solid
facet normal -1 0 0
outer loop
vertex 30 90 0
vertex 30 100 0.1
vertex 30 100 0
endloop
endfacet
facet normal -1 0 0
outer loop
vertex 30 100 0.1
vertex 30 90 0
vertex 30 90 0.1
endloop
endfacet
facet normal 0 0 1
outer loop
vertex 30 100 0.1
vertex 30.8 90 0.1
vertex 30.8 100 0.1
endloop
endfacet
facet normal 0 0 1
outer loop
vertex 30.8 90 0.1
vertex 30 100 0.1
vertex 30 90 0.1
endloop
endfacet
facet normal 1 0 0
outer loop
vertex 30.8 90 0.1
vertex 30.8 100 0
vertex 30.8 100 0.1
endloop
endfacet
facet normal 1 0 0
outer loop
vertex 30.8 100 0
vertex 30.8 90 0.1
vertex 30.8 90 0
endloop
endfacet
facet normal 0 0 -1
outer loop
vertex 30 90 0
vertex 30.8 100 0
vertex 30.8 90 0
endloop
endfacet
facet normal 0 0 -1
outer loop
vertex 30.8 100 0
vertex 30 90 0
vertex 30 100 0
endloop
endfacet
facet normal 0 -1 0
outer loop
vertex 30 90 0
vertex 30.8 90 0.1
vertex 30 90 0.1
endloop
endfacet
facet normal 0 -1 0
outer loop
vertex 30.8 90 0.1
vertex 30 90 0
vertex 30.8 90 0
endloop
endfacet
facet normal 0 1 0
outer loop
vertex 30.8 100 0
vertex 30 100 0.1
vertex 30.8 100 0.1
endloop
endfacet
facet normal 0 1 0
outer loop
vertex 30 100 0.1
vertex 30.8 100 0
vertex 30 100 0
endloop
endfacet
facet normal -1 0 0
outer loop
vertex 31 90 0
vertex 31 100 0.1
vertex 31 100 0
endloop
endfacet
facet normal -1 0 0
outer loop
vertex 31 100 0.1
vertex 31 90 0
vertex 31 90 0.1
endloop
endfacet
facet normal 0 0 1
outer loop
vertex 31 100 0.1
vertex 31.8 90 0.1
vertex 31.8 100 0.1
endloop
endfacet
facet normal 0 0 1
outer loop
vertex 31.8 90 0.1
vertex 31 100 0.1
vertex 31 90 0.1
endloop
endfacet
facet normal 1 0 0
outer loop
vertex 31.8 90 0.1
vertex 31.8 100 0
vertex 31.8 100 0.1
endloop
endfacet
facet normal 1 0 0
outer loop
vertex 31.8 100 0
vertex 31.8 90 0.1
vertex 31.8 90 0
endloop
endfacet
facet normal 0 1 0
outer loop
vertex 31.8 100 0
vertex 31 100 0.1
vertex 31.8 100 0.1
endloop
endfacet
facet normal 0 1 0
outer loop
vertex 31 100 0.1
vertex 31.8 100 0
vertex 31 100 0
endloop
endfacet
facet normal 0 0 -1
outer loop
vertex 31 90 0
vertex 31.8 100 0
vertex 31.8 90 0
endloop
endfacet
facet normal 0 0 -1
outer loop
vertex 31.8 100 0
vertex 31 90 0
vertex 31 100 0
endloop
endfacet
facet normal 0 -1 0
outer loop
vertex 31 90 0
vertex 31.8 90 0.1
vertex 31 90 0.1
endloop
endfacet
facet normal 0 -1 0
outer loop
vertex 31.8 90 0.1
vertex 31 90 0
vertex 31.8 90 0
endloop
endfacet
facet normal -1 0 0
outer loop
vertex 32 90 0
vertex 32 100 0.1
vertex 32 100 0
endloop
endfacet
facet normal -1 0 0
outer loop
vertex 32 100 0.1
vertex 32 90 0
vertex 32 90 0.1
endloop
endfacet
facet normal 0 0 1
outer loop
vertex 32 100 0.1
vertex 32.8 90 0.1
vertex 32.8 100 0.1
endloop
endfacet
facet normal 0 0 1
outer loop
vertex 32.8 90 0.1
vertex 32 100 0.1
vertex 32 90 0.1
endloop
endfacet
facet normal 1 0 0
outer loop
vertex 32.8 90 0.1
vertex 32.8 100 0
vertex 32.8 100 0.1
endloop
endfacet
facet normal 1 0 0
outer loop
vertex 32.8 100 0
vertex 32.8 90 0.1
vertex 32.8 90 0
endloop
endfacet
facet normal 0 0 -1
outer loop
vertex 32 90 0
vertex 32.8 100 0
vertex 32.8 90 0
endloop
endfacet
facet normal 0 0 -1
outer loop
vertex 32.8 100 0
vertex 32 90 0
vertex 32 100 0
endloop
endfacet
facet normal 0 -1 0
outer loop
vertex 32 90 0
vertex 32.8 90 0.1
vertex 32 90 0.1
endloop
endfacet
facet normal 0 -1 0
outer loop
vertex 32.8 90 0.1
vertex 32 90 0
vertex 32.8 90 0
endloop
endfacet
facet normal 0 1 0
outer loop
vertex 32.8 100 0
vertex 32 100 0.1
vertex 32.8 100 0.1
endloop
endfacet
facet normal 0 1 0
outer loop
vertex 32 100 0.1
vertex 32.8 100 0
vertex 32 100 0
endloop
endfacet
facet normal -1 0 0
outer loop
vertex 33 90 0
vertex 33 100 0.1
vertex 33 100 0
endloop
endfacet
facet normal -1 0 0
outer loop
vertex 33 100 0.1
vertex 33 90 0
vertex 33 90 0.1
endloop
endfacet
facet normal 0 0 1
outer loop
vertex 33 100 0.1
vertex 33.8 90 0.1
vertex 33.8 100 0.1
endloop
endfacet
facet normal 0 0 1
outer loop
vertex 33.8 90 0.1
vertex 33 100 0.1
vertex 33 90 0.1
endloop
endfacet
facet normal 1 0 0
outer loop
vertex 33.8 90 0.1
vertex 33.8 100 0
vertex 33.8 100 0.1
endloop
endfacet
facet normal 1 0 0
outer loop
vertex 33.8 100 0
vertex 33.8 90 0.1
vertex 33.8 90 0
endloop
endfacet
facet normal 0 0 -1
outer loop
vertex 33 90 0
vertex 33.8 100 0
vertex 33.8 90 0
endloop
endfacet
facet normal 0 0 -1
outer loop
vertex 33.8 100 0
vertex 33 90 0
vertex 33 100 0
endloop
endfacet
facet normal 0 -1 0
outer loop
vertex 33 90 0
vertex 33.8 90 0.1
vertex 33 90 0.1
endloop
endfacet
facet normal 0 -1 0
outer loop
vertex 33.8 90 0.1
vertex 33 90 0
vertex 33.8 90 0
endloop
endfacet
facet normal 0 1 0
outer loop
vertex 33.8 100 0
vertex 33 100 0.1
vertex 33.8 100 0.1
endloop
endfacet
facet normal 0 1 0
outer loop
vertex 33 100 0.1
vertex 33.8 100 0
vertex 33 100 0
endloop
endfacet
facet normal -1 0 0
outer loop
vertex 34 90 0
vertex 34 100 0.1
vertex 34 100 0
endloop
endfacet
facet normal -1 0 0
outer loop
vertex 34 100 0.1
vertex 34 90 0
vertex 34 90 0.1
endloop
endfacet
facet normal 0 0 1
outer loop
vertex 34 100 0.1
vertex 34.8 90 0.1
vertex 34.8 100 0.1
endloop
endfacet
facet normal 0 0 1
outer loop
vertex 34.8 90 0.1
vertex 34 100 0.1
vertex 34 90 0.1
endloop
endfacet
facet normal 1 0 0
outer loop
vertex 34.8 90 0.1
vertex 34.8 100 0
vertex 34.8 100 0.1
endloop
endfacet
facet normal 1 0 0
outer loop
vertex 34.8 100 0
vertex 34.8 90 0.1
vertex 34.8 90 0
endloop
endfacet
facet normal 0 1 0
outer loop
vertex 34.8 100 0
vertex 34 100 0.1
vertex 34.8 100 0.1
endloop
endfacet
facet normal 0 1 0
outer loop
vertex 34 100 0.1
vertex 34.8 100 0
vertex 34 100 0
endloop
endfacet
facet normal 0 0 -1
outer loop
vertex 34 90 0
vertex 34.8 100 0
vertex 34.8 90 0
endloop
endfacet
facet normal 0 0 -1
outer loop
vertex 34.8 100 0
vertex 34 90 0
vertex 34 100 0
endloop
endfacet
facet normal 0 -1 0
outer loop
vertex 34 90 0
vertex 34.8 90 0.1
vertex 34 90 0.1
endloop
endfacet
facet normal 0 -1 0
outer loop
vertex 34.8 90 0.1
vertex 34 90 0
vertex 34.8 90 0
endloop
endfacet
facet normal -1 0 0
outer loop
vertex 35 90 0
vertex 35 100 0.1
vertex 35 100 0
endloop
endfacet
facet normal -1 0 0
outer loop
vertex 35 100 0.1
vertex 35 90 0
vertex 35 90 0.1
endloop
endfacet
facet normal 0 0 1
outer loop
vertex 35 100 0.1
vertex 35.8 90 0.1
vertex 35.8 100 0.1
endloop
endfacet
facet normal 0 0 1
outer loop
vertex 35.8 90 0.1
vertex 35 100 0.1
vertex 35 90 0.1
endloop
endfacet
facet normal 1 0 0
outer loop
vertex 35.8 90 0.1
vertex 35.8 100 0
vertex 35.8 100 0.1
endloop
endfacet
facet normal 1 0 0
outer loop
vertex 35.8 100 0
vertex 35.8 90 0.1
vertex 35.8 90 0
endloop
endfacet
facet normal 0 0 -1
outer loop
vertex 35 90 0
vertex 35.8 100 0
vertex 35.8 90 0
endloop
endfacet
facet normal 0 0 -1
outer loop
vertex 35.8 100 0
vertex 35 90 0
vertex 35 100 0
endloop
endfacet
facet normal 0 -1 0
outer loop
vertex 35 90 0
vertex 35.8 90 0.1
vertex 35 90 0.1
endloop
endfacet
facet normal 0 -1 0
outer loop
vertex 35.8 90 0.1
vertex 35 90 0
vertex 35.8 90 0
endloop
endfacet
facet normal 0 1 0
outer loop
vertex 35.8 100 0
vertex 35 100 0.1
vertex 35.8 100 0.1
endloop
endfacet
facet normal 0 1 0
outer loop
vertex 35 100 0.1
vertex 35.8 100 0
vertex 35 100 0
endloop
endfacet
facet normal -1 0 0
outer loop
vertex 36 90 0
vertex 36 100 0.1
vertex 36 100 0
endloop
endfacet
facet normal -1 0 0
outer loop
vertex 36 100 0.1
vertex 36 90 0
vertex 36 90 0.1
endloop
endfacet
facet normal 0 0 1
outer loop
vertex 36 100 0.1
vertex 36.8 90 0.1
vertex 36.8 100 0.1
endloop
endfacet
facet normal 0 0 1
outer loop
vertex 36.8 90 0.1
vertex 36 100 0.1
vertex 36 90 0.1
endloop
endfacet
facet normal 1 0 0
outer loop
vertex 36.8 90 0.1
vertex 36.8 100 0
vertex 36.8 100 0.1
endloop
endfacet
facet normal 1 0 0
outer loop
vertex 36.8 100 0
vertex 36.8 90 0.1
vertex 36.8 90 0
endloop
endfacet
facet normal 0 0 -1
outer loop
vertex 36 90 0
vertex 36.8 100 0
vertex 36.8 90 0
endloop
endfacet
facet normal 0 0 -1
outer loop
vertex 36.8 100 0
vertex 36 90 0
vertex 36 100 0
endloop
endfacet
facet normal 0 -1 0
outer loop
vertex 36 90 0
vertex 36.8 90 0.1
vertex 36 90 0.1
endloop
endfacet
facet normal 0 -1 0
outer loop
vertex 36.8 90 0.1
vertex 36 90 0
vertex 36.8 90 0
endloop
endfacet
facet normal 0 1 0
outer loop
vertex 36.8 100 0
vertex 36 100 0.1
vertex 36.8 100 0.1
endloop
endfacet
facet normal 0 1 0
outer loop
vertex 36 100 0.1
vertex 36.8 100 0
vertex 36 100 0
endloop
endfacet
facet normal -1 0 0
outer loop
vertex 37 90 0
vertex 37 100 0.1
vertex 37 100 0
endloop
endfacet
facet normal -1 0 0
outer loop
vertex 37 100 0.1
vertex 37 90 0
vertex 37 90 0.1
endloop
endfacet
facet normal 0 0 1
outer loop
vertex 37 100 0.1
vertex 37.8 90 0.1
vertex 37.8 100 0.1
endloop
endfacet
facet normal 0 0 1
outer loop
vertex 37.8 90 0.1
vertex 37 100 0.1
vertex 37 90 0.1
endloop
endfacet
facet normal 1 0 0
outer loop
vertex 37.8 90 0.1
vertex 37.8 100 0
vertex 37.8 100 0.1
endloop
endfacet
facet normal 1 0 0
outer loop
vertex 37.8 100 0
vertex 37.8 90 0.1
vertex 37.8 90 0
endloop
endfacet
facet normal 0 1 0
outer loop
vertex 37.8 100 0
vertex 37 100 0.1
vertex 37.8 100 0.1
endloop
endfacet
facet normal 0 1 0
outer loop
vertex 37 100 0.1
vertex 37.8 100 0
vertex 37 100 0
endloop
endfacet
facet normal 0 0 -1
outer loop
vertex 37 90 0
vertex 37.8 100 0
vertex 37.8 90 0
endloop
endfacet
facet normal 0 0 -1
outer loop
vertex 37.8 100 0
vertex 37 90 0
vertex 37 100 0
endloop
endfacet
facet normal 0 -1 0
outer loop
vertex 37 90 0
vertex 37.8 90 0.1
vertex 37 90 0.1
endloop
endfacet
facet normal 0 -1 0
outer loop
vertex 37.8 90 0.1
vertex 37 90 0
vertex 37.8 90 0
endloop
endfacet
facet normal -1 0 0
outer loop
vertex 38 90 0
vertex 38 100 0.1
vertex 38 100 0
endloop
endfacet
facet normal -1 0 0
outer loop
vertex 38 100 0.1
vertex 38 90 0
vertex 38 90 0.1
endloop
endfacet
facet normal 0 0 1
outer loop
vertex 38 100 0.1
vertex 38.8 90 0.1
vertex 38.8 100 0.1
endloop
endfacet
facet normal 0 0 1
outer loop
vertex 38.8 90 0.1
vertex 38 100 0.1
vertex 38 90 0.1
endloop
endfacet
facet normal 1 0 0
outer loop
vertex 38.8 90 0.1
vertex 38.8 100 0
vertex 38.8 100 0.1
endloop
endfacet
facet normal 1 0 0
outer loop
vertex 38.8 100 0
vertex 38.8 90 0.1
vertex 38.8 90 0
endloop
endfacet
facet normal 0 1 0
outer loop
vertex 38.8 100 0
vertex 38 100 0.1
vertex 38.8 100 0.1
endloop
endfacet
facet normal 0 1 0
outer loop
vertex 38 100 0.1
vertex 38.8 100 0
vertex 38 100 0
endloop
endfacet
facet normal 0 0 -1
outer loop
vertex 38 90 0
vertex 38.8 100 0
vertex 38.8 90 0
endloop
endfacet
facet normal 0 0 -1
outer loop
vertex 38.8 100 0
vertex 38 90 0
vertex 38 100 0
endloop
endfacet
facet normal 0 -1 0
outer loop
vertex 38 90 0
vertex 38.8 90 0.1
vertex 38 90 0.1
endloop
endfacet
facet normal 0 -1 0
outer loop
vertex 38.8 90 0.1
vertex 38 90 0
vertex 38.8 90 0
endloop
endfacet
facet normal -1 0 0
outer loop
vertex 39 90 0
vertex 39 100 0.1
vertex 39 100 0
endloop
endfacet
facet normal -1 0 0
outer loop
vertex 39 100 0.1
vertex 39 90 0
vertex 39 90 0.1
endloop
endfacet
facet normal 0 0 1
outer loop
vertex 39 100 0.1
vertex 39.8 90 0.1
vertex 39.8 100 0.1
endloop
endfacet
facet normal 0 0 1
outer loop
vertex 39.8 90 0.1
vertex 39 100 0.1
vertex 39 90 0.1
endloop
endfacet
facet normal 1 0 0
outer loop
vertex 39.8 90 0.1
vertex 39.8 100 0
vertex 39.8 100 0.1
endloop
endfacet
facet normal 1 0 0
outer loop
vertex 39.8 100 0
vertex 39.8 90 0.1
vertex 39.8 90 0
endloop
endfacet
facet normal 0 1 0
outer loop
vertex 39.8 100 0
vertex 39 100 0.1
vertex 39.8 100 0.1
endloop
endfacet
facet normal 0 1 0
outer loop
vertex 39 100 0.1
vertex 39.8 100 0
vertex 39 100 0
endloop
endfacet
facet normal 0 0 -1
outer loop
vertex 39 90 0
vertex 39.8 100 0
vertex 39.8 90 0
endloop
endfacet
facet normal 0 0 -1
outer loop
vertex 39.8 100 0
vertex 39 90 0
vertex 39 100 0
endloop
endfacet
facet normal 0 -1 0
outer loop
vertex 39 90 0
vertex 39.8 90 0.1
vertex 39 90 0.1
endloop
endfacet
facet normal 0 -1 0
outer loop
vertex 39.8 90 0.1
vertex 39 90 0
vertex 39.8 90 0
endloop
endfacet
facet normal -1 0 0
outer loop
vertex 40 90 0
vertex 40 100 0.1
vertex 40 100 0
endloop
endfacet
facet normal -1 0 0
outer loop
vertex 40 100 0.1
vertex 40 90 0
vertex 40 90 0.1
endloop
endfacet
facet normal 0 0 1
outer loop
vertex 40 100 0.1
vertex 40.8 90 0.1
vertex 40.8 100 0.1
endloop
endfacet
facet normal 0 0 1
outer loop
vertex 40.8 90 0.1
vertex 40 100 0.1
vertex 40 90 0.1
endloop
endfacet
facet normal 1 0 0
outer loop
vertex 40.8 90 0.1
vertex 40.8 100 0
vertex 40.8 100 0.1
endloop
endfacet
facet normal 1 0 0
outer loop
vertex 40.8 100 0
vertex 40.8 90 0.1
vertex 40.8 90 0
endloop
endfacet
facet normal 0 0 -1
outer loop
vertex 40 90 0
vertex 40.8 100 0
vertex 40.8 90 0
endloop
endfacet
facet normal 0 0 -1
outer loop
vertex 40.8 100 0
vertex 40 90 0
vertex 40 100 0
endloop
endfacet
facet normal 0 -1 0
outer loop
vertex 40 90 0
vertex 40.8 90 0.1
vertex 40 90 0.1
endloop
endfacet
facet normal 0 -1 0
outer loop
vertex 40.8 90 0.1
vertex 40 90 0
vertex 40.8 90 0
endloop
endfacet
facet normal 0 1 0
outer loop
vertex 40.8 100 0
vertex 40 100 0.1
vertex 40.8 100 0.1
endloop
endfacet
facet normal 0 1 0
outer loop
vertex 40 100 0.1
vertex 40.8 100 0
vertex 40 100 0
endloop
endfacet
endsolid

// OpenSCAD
translate([10+20,10+80,0])
        for (i = [0 : 10]){
            translate([i,0,0])
                cube(size = [0.8,10,0.1]);
    }
